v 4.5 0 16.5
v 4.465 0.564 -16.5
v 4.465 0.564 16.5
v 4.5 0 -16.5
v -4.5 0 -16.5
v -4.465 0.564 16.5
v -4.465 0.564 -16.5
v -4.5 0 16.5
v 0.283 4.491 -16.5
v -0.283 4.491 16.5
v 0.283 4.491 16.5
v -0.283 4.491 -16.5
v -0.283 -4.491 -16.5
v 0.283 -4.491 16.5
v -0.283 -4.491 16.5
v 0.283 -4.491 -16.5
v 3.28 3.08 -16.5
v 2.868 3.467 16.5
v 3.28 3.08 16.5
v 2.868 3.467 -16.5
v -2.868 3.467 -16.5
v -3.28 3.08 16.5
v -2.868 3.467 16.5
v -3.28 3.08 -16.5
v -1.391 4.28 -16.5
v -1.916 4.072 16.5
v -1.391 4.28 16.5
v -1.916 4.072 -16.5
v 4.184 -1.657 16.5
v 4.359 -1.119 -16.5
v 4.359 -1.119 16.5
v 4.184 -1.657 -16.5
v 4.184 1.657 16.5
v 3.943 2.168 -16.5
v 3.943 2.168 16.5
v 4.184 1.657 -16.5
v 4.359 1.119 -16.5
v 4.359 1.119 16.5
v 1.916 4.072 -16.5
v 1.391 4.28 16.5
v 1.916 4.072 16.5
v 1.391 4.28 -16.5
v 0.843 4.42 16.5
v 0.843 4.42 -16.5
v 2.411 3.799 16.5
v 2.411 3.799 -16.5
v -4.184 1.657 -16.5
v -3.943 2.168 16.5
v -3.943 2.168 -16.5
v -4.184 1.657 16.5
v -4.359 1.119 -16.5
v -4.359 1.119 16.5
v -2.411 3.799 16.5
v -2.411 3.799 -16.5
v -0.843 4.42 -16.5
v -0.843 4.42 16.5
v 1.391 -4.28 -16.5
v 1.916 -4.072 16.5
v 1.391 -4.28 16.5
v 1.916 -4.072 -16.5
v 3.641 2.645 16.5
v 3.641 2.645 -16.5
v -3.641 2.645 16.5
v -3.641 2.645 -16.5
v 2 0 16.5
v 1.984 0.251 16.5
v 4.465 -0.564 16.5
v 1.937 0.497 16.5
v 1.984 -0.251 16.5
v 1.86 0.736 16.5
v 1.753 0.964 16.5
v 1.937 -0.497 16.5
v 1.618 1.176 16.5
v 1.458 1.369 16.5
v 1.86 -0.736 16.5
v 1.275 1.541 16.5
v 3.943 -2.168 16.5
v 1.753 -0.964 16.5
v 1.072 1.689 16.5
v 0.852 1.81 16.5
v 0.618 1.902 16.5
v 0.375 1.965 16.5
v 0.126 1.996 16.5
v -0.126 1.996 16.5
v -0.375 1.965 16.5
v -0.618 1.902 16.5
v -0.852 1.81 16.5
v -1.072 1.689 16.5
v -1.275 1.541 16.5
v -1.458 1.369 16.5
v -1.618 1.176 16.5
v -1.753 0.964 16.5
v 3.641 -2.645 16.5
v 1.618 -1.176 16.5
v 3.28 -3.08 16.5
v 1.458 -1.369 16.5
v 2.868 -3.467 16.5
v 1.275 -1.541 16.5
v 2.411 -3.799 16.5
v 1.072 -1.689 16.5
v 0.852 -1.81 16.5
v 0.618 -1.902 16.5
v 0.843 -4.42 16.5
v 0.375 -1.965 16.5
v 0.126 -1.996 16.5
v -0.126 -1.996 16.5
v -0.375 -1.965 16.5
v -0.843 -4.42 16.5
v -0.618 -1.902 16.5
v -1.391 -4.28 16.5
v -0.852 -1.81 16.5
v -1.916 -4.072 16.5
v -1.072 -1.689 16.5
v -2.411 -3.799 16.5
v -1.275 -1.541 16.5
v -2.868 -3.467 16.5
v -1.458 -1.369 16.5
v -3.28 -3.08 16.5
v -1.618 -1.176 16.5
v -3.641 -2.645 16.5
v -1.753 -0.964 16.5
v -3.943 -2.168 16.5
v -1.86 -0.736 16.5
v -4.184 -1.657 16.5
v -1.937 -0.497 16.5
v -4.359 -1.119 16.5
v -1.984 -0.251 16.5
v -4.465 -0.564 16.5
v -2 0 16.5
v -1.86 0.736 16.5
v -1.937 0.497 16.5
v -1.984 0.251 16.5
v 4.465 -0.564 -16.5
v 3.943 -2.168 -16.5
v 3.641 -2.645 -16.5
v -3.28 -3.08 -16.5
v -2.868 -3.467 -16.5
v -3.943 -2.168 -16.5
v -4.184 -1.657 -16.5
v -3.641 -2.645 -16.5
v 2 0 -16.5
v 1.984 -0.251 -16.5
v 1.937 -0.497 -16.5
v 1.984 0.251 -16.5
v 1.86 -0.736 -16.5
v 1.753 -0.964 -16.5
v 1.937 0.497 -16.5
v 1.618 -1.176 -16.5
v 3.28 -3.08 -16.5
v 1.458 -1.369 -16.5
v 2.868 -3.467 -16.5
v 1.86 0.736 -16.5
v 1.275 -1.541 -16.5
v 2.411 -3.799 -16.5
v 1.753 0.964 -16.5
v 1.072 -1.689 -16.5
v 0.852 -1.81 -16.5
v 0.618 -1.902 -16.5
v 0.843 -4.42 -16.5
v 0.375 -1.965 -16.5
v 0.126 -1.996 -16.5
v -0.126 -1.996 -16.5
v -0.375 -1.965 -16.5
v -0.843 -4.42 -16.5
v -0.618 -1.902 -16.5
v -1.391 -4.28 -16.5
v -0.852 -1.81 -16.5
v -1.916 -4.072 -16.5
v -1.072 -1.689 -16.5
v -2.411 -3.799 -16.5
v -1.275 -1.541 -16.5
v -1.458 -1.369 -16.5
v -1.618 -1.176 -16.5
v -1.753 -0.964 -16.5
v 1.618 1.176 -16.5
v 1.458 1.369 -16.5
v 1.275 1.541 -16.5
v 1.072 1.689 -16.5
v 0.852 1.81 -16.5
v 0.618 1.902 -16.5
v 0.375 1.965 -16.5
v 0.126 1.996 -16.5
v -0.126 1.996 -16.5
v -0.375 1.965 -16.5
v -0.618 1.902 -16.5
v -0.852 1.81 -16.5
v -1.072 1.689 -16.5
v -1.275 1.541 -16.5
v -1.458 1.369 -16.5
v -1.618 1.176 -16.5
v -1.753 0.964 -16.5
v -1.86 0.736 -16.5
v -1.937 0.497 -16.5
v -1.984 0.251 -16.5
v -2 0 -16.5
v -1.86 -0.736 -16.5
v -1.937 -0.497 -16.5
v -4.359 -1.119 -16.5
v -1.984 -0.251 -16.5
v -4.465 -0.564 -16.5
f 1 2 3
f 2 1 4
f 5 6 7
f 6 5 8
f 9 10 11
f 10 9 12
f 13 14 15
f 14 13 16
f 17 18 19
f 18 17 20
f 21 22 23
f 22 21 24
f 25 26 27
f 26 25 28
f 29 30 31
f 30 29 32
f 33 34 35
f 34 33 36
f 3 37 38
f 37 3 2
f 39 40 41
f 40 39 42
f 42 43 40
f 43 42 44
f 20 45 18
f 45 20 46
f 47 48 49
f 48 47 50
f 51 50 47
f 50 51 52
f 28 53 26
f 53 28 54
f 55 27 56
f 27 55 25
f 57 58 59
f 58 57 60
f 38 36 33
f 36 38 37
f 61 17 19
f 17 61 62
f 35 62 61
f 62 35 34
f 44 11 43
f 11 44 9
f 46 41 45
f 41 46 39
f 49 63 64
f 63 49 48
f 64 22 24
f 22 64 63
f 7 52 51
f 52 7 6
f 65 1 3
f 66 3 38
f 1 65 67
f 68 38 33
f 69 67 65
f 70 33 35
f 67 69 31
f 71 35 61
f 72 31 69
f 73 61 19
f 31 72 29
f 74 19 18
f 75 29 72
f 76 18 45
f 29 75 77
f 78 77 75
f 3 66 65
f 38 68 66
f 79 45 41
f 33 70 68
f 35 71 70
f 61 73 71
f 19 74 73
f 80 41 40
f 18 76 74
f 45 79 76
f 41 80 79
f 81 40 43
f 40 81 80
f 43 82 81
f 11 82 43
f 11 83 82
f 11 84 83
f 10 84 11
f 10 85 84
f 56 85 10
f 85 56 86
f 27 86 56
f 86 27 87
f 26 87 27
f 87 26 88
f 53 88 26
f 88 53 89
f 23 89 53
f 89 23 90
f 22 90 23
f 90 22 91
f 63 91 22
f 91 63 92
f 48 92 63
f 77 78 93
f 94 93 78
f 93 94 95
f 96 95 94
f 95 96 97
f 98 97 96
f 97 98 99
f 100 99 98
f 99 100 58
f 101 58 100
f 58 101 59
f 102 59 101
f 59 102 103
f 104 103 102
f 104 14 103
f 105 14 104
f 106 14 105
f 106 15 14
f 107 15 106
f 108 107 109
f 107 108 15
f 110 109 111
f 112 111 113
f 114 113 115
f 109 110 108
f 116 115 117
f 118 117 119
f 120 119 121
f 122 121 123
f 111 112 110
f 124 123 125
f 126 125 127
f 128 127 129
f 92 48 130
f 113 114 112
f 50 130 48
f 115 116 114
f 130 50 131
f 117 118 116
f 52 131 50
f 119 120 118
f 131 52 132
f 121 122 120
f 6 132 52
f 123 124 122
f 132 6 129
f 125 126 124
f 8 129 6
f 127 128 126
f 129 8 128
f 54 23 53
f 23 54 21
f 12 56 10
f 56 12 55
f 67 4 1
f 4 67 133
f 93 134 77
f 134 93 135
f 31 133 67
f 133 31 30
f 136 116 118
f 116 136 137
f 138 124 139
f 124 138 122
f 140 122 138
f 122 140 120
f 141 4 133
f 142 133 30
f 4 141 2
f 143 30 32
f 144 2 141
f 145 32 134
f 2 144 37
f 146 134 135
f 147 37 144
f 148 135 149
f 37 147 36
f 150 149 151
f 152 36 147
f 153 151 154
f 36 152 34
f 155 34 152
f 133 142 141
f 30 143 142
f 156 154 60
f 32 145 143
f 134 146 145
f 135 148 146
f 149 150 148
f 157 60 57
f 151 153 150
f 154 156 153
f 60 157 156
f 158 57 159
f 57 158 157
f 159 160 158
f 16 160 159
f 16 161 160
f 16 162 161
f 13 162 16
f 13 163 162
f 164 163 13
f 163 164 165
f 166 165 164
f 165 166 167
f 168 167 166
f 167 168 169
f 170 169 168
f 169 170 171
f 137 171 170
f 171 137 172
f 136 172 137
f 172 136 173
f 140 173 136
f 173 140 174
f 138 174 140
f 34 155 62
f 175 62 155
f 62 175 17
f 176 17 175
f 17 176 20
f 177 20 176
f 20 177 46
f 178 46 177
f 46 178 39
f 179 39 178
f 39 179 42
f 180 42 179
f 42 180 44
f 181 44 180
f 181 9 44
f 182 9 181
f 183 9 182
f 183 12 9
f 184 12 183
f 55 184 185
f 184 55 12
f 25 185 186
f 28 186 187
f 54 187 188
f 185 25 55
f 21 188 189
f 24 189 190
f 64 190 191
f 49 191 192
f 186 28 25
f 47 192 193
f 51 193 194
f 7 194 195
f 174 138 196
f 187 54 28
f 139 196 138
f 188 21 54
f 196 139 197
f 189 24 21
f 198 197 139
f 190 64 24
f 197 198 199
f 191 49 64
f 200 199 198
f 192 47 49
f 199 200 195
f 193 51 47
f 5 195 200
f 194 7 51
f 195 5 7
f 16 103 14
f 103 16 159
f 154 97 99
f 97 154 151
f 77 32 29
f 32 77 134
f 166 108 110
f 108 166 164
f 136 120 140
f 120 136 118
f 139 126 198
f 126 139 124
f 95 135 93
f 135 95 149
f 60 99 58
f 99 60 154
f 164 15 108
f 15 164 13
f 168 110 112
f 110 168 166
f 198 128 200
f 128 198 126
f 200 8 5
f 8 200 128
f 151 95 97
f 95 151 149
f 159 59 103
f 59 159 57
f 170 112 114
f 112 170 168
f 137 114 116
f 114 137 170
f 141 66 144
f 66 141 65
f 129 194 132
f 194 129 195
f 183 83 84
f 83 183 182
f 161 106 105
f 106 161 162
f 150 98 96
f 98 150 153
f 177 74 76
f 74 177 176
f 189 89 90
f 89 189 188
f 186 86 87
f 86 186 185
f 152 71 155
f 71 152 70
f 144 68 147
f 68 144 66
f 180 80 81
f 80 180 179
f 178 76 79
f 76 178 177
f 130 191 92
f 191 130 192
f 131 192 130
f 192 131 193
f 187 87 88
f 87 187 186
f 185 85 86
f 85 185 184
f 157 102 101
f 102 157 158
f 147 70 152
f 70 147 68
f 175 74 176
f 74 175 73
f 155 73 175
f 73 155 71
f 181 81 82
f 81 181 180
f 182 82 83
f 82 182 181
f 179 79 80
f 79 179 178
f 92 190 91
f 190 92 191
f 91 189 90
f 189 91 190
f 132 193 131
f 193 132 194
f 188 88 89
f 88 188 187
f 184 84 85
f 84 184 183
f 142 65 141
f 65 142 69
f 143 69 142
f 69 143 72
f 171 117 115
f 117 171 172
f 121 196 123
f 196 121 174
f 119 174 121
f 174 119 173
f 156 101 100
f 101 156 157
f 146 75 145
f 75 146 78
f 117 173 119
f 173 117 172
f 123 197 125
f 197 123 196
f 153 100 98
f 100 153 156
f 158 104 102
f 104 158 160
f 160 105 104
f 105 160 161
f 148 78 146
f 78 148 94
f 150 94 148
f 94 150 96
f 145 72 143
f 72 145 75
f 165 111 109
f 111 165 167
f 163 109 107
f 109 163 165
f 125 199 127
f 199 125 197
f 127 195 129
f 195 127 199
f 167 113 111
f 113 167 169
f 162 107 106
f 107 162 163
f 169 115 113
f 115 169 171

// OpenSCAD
$fn = 50;


difference() {
	union() {
		translate(v = [0, 0, -16.5000000000]) {
			cylinder(h = 33, r = 4.5000000000);
		}
	}
	union() {
		translate(v = [0, 0, -100.0000000000]) {
			cylinder(h = 200, r = 2);
		}
	}
}
